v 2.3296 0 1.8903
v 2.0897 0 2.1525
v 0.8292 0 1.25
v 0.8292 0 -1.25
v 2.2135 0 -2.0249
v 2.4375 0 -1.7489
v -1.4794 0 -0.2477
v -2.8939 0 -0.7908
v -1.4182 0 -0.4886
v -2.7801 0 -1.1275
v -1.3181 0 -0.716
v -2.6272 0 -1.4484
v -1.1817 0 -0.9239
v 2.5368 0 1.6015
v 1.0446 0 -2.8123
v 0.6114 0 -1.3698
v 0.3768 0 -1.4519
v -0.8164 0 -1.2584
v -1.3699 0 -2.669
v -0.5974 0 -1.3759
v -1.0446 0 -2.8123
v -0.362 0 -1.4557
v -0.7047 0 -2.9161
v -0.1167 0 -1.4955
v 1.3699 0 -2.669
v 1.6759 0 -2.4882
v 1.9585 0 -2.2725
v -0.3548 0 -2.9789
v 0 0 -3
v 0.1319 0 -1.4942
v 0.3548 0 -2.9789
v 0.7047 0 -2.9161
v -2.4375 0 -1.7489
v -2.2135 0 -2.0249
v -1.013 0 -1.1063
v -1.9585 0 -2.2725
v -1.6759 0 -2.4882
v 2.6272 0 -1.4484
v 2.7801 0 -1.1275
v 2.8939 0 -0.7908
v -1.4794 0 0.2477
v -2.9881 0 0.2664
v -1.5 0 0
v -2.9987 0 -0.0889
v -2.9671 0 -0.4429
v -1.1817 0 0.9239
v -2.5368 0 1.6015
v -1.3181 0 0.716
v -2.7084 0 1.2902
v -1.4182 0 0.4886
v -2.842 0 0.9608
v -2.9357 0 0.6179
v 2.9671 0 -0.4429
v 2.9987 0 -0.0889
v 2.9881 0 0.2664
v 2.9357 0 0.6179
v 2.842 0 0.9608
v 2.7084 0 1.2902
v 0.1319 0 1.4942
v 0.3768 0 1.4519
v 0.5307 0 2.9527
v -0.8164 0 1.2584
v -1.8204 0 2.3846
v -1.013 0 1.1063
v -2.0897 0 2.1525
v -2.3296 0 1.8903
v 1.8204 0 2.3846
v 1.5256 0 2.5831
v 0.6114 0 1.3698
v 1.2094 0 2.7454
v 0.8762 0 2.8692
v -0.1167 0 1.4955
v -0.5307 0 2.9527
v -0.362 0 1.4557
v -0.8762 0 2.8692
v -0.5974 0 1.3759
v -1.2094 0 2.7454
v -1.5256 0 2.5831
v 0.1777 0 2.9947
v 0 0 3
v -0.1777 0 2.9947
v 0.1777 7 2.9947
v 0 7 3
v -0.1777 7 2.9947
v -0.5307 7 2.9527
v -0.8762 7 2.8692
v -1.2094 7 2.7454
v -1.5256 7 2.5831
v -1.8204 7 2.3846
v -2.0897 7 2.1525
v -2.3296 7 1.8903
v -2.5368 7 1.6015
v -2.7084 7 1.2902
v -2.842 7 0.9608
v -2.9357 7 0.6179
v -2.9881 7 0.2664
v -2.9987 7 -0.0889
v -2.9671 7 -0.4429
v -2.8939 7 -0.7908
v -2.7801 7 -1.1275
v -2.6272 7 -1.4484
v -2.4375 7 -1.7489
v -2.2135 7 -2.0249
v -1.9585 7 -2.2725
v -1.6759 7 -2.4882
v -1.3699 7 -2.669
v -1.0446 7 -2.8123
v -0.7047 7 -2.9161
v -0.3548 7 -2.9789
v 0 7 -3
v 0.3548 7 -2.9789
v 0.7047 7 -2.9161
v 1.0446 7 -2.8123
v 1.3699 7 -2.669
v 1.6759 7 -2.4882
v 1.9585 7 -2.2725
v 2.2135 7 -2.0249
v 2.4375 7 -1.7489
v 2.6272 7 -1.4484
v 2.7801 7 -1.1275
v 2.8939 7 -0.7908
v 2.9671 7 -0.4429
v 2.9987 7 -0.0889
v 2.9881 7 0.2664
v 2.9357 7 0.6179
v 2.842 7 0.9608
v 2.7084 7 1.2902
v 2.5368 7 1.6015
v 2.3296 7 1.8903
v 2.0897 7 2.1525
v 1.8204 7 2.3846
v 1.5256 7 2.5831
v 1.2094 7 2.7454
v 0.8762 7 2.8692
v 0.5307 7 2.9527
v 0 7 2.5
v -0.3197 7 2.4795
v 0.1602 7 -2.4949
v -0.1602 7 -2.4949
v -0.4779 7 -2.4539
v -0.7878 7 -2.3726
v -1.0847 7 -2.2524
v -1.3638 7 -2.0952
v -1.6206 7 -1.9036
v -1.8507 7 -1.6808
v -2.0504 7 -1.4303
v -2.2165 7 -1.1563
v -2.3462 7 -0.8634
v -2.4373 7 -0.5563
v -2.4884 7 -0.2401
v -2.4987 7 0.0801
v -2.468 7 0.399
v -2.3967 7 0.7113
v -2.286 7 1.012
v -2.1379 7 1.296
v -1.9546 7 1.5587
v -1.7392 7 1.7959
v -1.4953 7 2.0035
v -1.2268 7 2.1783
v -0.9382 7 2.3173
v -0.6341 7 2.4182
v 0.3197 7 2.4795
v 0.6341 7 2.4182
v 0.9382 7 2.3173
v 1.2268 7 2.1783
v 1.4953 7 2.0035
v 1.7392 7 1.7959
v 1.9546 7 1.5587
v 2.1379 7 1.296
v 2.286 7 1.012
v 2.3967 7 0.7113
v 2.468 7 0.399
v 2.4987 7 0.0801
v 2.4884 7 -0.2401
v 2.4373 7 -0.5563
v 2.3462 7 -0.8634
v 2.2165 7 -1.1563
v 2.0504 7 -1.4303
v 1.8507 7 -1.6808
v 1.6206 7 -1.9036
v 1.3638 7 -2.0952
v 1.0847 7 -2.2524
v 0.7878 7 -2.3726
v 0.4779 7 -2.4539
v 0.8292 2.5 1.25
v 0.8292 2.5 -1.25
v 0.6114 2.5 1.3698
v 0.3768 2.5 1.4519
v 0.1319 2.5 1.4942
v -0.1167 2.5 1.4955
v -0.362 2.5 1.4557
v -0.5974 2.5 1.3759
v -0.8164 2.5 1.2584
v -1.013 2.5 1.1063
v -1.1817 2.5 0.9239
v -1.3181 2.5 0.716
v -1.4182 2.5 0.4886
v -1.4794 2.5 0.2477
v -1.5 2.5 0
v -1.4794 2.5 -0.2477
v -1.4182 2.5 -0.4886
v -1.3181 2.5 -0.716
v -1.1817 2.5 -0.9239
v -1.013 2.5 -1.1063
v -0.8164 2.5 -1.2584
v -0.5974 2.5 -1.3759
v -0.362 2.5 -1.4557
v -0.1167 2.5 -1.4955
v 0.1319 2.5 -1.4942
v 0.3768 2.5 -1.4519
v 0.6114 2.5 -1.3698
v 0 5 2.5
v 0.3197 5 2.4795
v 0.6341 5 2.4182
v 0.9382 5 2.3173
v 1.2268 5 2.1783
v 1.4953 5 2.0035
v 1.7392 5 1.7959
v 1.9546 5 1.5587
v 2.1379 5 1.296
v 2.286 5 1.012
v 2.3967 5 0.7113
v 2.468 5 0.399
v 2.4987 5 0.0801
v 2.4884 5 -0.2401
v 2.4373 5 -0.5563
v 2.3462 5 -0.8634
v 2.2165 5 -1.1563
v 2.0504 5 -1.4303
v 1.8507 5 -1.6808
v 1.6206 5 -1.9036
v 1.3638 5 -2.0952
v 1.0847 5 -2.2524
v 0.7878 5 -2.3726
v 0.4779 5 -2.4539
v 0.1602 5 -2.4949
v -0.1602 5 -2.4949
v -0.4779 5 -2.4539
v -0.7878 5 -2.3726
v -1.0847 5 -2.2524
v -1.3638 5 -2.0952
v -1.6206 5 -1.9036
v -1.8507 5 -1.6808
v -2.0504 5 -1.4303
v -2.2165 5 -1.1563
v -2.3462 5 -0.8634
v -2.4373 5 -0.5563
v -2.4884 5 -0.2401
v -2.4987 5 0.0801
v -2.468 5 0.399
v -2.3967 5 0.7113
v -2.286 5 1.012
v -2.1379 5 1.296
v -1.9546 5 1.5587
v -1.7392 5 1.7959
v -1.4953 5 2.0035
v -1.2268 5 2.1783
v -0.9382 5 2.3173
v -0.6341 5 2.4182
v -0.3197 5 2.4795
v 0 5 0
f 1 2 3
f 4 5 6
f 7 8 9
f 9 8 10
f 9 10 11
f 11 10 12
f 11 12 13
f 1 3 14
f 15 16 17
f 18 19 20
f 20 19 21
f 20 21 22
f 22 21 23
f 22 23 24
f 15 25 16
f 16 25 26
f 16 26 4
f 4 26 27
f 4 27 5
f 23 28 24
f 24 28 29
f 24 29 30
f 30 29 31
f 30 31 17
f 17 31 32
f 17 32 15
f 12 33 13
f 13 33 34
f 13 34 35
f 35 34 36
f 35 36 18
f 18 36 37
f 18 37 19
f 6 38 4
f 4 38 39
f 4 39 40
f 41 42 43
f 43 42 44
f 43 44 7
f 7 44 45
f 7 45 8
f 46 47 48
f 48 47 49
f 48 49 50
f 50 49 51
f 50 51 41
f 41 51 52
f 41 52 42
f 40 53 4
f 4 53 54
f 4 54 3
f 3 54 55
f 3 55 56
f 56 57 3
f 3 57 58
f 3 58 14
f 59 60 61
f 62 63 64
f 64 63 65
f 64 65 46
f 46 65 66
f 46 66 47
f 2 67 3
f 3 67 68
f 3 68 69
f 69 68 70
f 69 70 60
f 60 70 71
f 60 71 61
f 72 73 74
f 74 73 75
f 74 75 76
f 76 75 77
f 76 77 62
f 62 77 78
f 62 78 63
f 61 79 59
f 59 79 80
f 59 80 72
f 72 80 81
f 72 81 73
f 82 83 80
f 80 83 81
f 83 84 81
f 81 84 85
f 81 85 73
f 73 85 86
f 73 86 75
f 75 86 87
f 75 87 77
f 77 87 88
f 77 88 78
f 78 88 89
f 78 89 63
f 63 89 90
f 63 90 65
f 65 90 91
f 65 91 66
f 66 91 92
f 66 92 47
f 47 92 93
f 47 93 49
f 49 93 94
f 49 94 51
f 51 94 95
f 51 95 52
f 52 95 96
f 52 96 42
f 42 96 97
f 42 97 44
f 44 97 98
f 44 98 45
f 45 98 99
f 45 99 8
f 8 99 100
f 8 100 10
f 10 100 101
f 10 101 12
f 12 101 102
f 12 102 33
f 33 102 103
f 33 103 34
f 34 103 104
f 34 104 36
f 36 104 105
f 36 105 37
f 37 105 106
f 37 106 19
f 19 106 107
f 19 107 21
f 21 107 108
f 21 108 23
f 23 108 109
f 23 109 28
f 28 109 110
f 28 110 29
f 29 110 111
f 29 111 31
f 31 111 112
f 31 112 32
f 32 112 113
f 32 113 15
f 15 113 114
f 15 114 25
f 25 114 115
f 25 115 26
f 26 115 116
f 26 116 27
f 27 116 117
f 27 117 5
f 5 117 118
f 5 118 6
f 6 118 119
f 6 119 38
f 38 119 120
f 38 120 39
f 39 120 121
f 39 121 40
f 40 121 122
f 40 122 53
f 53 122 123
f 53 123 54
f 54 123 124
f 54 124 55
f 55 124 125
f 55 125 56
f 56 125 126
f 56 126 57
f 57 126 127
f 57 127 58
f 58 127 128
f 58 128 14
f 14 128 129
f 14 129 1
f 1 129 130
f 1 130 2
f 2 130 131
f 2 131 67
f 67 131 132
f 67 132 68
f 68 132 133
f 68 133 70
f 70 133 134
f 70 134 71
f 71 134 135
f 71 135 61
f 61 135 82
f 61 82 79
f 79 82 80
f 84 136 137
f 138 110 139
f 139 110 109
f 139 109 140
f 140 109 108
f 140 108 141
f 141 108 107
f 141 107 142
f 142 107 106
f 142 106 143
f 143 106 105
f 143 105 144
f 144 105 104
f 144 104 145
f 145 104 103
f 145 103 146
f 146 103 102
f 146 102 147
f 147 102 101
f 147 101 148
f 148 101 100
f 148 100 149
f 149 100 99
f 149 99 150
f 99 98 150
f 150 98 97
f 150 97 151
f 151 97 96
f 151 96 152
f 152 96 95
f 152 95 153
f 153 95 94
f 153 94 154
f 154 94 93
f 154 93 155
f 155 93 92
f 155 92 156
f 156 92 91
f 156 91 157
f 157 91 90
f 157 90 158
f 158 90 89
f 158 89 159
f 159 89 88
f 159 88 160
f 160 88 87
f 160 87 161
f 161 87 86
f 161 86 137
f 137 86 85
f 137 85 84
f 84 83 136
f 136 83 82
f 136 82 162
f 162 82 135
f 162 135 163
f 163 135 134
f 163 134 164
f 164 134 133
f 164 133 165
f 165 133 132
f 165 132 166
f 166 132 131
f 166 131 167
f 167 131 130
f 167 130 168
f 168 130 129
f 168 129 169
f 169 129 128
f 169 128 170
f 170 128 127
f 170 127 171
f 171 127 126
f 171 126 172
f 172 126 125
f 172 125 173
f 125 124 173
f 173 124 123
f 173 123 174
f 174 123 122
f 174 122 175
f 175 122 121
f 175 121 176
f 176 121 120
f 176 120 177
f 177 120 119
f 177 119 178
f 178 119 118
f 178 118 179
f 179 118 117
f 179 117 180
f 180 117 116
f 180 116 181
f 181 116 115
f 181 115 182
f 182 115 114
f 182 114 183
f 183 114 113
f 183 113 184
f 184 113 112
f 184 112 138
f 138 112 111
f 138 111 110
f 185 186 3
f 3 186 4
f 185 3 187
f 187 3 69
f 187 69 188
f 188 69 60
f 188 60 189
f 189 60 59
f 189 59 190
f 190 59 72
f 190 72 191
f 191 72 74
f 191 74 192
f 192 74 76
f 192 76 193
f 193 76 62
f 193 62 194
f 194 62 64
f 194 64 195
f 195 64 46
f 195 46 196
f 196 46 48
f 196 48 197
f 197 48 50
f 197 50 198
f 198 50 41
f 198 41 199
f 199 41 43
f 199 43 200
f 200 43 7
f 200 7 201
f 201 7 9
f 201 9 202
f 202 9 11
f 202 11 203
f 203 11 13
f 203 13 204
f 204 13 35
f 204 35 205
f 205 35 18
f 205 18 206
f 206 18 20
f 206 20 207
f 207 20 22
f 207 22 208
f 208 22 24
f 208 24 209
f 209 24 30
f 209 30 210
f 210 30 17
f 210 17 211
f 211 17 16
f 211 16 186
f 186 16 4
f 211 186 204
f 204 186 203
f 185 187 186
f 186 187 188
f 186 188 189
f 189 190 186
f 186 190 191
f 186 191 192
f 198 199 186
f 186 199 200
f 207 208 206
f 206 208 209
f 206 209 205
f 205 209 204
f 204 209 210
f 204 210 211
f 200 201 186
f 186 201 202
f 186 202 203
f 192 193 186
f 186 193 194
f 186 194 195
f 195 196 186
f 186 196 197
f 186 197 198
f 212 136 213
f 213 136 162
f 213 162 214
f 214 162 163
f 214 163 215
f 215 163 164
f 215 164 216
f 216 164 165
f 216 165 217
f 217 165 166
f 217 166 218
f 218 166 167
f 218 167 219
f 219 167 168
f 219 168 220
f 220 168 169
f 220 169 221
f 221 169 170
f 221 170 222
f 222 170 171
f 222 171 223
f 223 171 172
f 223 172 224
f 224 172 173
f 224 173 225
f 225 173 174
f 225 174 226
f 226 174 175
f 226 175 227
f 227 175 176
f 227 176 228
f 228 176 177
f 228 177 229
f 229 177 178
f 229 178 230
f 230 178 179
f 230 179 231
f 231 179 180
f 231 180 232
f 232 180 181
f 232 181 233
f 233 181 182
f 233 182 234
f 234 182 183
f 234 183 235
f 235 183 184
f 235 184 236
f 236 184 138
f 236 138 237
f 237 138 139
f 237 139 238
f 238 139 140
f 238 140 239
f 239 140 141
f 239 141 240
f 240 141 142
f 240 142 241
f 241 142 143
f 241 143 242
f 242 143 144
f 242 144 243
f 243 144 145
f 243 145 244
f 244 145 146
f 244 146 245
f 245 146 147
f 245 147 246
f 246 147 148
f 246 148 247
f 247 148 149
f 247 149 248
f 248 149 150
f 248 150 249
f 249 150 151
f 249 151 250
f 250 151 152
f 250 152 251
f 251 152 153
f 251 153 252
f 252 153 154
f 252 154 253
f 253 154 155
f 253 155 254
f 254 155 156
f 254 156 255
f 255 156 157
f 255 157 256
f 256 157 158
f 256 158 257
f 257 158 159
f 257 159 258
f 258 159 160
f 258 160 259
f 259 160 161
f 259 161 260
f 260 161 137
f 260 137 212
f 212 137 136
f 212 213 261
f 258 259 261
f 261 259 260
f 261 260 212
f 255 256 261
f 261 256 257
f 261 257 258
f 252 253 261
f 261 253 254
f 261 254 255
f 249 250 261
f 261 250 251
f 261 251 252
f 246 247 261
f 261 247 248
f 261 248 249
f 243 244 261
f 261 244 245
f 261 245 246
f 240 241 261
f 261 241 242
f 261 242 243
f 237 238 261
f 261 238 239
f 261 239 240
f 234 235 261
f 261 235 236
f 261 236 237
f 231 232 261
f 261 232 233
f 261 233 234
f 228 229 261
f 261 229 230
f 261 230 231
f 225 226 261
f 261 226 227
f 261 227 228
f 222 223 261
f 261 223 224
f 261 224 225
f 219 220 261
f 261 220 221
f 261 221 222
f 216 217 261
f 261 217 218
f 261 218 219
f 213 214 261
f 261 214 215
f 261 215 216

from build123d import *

# Parameters (mm, degrees)
SKETCH_1_R          = 3
EXTRUDE_1_DEPTH     = 7
CUT_EXTRUDE_1_DEPTH = 2.5
SKETCH_5_R          = 2.5
CUT_EXTRUDE_2_DEPTH = 2


with BuildPart() as part:
    # 草图1 → 凸台-拉伸1 (new body)
    with BuildSketch(Plane(origin=(0, 0, 0), x_dir=(1, 0, 0), z_dir=(0, 1, 0))):
        Circle(SKETCH_1_R)
    extrude(amount=EXTRUDE_1_DEPTH)

    # 草图4 → 切除-拉伸1 (cut)
    with BuildSketch(Plane(origin=(0, 0, 0), x_dir=(1, 0, 0), z_dir=(0, 1, 0))):
        with BuildLine():
            Line((0.829156198, -1.25), (0.829156198, 1.25))
            ThreePointArc((0.829156198, 1.25), (-1.5, 0), (0.829156198, -1.25))
        make_face()
    extrude(amount=CUT_EXTRUDE_1_DEPTH, mode=Mode.SUBTRACT)

    # 草图5 → 切除-拉伸2 (cut)
    with BuildSketch(Plane(origin=(0, 7, 0), x_dir=(1, 0, 0), z_dir=(0, 1, 0))):
        Circle(SKETCH_5_R)
    extrude(amount=-CUT_EXTRUDE_2_DEPTH, mode=Mode.SUBTRACT)


solid = part.part
